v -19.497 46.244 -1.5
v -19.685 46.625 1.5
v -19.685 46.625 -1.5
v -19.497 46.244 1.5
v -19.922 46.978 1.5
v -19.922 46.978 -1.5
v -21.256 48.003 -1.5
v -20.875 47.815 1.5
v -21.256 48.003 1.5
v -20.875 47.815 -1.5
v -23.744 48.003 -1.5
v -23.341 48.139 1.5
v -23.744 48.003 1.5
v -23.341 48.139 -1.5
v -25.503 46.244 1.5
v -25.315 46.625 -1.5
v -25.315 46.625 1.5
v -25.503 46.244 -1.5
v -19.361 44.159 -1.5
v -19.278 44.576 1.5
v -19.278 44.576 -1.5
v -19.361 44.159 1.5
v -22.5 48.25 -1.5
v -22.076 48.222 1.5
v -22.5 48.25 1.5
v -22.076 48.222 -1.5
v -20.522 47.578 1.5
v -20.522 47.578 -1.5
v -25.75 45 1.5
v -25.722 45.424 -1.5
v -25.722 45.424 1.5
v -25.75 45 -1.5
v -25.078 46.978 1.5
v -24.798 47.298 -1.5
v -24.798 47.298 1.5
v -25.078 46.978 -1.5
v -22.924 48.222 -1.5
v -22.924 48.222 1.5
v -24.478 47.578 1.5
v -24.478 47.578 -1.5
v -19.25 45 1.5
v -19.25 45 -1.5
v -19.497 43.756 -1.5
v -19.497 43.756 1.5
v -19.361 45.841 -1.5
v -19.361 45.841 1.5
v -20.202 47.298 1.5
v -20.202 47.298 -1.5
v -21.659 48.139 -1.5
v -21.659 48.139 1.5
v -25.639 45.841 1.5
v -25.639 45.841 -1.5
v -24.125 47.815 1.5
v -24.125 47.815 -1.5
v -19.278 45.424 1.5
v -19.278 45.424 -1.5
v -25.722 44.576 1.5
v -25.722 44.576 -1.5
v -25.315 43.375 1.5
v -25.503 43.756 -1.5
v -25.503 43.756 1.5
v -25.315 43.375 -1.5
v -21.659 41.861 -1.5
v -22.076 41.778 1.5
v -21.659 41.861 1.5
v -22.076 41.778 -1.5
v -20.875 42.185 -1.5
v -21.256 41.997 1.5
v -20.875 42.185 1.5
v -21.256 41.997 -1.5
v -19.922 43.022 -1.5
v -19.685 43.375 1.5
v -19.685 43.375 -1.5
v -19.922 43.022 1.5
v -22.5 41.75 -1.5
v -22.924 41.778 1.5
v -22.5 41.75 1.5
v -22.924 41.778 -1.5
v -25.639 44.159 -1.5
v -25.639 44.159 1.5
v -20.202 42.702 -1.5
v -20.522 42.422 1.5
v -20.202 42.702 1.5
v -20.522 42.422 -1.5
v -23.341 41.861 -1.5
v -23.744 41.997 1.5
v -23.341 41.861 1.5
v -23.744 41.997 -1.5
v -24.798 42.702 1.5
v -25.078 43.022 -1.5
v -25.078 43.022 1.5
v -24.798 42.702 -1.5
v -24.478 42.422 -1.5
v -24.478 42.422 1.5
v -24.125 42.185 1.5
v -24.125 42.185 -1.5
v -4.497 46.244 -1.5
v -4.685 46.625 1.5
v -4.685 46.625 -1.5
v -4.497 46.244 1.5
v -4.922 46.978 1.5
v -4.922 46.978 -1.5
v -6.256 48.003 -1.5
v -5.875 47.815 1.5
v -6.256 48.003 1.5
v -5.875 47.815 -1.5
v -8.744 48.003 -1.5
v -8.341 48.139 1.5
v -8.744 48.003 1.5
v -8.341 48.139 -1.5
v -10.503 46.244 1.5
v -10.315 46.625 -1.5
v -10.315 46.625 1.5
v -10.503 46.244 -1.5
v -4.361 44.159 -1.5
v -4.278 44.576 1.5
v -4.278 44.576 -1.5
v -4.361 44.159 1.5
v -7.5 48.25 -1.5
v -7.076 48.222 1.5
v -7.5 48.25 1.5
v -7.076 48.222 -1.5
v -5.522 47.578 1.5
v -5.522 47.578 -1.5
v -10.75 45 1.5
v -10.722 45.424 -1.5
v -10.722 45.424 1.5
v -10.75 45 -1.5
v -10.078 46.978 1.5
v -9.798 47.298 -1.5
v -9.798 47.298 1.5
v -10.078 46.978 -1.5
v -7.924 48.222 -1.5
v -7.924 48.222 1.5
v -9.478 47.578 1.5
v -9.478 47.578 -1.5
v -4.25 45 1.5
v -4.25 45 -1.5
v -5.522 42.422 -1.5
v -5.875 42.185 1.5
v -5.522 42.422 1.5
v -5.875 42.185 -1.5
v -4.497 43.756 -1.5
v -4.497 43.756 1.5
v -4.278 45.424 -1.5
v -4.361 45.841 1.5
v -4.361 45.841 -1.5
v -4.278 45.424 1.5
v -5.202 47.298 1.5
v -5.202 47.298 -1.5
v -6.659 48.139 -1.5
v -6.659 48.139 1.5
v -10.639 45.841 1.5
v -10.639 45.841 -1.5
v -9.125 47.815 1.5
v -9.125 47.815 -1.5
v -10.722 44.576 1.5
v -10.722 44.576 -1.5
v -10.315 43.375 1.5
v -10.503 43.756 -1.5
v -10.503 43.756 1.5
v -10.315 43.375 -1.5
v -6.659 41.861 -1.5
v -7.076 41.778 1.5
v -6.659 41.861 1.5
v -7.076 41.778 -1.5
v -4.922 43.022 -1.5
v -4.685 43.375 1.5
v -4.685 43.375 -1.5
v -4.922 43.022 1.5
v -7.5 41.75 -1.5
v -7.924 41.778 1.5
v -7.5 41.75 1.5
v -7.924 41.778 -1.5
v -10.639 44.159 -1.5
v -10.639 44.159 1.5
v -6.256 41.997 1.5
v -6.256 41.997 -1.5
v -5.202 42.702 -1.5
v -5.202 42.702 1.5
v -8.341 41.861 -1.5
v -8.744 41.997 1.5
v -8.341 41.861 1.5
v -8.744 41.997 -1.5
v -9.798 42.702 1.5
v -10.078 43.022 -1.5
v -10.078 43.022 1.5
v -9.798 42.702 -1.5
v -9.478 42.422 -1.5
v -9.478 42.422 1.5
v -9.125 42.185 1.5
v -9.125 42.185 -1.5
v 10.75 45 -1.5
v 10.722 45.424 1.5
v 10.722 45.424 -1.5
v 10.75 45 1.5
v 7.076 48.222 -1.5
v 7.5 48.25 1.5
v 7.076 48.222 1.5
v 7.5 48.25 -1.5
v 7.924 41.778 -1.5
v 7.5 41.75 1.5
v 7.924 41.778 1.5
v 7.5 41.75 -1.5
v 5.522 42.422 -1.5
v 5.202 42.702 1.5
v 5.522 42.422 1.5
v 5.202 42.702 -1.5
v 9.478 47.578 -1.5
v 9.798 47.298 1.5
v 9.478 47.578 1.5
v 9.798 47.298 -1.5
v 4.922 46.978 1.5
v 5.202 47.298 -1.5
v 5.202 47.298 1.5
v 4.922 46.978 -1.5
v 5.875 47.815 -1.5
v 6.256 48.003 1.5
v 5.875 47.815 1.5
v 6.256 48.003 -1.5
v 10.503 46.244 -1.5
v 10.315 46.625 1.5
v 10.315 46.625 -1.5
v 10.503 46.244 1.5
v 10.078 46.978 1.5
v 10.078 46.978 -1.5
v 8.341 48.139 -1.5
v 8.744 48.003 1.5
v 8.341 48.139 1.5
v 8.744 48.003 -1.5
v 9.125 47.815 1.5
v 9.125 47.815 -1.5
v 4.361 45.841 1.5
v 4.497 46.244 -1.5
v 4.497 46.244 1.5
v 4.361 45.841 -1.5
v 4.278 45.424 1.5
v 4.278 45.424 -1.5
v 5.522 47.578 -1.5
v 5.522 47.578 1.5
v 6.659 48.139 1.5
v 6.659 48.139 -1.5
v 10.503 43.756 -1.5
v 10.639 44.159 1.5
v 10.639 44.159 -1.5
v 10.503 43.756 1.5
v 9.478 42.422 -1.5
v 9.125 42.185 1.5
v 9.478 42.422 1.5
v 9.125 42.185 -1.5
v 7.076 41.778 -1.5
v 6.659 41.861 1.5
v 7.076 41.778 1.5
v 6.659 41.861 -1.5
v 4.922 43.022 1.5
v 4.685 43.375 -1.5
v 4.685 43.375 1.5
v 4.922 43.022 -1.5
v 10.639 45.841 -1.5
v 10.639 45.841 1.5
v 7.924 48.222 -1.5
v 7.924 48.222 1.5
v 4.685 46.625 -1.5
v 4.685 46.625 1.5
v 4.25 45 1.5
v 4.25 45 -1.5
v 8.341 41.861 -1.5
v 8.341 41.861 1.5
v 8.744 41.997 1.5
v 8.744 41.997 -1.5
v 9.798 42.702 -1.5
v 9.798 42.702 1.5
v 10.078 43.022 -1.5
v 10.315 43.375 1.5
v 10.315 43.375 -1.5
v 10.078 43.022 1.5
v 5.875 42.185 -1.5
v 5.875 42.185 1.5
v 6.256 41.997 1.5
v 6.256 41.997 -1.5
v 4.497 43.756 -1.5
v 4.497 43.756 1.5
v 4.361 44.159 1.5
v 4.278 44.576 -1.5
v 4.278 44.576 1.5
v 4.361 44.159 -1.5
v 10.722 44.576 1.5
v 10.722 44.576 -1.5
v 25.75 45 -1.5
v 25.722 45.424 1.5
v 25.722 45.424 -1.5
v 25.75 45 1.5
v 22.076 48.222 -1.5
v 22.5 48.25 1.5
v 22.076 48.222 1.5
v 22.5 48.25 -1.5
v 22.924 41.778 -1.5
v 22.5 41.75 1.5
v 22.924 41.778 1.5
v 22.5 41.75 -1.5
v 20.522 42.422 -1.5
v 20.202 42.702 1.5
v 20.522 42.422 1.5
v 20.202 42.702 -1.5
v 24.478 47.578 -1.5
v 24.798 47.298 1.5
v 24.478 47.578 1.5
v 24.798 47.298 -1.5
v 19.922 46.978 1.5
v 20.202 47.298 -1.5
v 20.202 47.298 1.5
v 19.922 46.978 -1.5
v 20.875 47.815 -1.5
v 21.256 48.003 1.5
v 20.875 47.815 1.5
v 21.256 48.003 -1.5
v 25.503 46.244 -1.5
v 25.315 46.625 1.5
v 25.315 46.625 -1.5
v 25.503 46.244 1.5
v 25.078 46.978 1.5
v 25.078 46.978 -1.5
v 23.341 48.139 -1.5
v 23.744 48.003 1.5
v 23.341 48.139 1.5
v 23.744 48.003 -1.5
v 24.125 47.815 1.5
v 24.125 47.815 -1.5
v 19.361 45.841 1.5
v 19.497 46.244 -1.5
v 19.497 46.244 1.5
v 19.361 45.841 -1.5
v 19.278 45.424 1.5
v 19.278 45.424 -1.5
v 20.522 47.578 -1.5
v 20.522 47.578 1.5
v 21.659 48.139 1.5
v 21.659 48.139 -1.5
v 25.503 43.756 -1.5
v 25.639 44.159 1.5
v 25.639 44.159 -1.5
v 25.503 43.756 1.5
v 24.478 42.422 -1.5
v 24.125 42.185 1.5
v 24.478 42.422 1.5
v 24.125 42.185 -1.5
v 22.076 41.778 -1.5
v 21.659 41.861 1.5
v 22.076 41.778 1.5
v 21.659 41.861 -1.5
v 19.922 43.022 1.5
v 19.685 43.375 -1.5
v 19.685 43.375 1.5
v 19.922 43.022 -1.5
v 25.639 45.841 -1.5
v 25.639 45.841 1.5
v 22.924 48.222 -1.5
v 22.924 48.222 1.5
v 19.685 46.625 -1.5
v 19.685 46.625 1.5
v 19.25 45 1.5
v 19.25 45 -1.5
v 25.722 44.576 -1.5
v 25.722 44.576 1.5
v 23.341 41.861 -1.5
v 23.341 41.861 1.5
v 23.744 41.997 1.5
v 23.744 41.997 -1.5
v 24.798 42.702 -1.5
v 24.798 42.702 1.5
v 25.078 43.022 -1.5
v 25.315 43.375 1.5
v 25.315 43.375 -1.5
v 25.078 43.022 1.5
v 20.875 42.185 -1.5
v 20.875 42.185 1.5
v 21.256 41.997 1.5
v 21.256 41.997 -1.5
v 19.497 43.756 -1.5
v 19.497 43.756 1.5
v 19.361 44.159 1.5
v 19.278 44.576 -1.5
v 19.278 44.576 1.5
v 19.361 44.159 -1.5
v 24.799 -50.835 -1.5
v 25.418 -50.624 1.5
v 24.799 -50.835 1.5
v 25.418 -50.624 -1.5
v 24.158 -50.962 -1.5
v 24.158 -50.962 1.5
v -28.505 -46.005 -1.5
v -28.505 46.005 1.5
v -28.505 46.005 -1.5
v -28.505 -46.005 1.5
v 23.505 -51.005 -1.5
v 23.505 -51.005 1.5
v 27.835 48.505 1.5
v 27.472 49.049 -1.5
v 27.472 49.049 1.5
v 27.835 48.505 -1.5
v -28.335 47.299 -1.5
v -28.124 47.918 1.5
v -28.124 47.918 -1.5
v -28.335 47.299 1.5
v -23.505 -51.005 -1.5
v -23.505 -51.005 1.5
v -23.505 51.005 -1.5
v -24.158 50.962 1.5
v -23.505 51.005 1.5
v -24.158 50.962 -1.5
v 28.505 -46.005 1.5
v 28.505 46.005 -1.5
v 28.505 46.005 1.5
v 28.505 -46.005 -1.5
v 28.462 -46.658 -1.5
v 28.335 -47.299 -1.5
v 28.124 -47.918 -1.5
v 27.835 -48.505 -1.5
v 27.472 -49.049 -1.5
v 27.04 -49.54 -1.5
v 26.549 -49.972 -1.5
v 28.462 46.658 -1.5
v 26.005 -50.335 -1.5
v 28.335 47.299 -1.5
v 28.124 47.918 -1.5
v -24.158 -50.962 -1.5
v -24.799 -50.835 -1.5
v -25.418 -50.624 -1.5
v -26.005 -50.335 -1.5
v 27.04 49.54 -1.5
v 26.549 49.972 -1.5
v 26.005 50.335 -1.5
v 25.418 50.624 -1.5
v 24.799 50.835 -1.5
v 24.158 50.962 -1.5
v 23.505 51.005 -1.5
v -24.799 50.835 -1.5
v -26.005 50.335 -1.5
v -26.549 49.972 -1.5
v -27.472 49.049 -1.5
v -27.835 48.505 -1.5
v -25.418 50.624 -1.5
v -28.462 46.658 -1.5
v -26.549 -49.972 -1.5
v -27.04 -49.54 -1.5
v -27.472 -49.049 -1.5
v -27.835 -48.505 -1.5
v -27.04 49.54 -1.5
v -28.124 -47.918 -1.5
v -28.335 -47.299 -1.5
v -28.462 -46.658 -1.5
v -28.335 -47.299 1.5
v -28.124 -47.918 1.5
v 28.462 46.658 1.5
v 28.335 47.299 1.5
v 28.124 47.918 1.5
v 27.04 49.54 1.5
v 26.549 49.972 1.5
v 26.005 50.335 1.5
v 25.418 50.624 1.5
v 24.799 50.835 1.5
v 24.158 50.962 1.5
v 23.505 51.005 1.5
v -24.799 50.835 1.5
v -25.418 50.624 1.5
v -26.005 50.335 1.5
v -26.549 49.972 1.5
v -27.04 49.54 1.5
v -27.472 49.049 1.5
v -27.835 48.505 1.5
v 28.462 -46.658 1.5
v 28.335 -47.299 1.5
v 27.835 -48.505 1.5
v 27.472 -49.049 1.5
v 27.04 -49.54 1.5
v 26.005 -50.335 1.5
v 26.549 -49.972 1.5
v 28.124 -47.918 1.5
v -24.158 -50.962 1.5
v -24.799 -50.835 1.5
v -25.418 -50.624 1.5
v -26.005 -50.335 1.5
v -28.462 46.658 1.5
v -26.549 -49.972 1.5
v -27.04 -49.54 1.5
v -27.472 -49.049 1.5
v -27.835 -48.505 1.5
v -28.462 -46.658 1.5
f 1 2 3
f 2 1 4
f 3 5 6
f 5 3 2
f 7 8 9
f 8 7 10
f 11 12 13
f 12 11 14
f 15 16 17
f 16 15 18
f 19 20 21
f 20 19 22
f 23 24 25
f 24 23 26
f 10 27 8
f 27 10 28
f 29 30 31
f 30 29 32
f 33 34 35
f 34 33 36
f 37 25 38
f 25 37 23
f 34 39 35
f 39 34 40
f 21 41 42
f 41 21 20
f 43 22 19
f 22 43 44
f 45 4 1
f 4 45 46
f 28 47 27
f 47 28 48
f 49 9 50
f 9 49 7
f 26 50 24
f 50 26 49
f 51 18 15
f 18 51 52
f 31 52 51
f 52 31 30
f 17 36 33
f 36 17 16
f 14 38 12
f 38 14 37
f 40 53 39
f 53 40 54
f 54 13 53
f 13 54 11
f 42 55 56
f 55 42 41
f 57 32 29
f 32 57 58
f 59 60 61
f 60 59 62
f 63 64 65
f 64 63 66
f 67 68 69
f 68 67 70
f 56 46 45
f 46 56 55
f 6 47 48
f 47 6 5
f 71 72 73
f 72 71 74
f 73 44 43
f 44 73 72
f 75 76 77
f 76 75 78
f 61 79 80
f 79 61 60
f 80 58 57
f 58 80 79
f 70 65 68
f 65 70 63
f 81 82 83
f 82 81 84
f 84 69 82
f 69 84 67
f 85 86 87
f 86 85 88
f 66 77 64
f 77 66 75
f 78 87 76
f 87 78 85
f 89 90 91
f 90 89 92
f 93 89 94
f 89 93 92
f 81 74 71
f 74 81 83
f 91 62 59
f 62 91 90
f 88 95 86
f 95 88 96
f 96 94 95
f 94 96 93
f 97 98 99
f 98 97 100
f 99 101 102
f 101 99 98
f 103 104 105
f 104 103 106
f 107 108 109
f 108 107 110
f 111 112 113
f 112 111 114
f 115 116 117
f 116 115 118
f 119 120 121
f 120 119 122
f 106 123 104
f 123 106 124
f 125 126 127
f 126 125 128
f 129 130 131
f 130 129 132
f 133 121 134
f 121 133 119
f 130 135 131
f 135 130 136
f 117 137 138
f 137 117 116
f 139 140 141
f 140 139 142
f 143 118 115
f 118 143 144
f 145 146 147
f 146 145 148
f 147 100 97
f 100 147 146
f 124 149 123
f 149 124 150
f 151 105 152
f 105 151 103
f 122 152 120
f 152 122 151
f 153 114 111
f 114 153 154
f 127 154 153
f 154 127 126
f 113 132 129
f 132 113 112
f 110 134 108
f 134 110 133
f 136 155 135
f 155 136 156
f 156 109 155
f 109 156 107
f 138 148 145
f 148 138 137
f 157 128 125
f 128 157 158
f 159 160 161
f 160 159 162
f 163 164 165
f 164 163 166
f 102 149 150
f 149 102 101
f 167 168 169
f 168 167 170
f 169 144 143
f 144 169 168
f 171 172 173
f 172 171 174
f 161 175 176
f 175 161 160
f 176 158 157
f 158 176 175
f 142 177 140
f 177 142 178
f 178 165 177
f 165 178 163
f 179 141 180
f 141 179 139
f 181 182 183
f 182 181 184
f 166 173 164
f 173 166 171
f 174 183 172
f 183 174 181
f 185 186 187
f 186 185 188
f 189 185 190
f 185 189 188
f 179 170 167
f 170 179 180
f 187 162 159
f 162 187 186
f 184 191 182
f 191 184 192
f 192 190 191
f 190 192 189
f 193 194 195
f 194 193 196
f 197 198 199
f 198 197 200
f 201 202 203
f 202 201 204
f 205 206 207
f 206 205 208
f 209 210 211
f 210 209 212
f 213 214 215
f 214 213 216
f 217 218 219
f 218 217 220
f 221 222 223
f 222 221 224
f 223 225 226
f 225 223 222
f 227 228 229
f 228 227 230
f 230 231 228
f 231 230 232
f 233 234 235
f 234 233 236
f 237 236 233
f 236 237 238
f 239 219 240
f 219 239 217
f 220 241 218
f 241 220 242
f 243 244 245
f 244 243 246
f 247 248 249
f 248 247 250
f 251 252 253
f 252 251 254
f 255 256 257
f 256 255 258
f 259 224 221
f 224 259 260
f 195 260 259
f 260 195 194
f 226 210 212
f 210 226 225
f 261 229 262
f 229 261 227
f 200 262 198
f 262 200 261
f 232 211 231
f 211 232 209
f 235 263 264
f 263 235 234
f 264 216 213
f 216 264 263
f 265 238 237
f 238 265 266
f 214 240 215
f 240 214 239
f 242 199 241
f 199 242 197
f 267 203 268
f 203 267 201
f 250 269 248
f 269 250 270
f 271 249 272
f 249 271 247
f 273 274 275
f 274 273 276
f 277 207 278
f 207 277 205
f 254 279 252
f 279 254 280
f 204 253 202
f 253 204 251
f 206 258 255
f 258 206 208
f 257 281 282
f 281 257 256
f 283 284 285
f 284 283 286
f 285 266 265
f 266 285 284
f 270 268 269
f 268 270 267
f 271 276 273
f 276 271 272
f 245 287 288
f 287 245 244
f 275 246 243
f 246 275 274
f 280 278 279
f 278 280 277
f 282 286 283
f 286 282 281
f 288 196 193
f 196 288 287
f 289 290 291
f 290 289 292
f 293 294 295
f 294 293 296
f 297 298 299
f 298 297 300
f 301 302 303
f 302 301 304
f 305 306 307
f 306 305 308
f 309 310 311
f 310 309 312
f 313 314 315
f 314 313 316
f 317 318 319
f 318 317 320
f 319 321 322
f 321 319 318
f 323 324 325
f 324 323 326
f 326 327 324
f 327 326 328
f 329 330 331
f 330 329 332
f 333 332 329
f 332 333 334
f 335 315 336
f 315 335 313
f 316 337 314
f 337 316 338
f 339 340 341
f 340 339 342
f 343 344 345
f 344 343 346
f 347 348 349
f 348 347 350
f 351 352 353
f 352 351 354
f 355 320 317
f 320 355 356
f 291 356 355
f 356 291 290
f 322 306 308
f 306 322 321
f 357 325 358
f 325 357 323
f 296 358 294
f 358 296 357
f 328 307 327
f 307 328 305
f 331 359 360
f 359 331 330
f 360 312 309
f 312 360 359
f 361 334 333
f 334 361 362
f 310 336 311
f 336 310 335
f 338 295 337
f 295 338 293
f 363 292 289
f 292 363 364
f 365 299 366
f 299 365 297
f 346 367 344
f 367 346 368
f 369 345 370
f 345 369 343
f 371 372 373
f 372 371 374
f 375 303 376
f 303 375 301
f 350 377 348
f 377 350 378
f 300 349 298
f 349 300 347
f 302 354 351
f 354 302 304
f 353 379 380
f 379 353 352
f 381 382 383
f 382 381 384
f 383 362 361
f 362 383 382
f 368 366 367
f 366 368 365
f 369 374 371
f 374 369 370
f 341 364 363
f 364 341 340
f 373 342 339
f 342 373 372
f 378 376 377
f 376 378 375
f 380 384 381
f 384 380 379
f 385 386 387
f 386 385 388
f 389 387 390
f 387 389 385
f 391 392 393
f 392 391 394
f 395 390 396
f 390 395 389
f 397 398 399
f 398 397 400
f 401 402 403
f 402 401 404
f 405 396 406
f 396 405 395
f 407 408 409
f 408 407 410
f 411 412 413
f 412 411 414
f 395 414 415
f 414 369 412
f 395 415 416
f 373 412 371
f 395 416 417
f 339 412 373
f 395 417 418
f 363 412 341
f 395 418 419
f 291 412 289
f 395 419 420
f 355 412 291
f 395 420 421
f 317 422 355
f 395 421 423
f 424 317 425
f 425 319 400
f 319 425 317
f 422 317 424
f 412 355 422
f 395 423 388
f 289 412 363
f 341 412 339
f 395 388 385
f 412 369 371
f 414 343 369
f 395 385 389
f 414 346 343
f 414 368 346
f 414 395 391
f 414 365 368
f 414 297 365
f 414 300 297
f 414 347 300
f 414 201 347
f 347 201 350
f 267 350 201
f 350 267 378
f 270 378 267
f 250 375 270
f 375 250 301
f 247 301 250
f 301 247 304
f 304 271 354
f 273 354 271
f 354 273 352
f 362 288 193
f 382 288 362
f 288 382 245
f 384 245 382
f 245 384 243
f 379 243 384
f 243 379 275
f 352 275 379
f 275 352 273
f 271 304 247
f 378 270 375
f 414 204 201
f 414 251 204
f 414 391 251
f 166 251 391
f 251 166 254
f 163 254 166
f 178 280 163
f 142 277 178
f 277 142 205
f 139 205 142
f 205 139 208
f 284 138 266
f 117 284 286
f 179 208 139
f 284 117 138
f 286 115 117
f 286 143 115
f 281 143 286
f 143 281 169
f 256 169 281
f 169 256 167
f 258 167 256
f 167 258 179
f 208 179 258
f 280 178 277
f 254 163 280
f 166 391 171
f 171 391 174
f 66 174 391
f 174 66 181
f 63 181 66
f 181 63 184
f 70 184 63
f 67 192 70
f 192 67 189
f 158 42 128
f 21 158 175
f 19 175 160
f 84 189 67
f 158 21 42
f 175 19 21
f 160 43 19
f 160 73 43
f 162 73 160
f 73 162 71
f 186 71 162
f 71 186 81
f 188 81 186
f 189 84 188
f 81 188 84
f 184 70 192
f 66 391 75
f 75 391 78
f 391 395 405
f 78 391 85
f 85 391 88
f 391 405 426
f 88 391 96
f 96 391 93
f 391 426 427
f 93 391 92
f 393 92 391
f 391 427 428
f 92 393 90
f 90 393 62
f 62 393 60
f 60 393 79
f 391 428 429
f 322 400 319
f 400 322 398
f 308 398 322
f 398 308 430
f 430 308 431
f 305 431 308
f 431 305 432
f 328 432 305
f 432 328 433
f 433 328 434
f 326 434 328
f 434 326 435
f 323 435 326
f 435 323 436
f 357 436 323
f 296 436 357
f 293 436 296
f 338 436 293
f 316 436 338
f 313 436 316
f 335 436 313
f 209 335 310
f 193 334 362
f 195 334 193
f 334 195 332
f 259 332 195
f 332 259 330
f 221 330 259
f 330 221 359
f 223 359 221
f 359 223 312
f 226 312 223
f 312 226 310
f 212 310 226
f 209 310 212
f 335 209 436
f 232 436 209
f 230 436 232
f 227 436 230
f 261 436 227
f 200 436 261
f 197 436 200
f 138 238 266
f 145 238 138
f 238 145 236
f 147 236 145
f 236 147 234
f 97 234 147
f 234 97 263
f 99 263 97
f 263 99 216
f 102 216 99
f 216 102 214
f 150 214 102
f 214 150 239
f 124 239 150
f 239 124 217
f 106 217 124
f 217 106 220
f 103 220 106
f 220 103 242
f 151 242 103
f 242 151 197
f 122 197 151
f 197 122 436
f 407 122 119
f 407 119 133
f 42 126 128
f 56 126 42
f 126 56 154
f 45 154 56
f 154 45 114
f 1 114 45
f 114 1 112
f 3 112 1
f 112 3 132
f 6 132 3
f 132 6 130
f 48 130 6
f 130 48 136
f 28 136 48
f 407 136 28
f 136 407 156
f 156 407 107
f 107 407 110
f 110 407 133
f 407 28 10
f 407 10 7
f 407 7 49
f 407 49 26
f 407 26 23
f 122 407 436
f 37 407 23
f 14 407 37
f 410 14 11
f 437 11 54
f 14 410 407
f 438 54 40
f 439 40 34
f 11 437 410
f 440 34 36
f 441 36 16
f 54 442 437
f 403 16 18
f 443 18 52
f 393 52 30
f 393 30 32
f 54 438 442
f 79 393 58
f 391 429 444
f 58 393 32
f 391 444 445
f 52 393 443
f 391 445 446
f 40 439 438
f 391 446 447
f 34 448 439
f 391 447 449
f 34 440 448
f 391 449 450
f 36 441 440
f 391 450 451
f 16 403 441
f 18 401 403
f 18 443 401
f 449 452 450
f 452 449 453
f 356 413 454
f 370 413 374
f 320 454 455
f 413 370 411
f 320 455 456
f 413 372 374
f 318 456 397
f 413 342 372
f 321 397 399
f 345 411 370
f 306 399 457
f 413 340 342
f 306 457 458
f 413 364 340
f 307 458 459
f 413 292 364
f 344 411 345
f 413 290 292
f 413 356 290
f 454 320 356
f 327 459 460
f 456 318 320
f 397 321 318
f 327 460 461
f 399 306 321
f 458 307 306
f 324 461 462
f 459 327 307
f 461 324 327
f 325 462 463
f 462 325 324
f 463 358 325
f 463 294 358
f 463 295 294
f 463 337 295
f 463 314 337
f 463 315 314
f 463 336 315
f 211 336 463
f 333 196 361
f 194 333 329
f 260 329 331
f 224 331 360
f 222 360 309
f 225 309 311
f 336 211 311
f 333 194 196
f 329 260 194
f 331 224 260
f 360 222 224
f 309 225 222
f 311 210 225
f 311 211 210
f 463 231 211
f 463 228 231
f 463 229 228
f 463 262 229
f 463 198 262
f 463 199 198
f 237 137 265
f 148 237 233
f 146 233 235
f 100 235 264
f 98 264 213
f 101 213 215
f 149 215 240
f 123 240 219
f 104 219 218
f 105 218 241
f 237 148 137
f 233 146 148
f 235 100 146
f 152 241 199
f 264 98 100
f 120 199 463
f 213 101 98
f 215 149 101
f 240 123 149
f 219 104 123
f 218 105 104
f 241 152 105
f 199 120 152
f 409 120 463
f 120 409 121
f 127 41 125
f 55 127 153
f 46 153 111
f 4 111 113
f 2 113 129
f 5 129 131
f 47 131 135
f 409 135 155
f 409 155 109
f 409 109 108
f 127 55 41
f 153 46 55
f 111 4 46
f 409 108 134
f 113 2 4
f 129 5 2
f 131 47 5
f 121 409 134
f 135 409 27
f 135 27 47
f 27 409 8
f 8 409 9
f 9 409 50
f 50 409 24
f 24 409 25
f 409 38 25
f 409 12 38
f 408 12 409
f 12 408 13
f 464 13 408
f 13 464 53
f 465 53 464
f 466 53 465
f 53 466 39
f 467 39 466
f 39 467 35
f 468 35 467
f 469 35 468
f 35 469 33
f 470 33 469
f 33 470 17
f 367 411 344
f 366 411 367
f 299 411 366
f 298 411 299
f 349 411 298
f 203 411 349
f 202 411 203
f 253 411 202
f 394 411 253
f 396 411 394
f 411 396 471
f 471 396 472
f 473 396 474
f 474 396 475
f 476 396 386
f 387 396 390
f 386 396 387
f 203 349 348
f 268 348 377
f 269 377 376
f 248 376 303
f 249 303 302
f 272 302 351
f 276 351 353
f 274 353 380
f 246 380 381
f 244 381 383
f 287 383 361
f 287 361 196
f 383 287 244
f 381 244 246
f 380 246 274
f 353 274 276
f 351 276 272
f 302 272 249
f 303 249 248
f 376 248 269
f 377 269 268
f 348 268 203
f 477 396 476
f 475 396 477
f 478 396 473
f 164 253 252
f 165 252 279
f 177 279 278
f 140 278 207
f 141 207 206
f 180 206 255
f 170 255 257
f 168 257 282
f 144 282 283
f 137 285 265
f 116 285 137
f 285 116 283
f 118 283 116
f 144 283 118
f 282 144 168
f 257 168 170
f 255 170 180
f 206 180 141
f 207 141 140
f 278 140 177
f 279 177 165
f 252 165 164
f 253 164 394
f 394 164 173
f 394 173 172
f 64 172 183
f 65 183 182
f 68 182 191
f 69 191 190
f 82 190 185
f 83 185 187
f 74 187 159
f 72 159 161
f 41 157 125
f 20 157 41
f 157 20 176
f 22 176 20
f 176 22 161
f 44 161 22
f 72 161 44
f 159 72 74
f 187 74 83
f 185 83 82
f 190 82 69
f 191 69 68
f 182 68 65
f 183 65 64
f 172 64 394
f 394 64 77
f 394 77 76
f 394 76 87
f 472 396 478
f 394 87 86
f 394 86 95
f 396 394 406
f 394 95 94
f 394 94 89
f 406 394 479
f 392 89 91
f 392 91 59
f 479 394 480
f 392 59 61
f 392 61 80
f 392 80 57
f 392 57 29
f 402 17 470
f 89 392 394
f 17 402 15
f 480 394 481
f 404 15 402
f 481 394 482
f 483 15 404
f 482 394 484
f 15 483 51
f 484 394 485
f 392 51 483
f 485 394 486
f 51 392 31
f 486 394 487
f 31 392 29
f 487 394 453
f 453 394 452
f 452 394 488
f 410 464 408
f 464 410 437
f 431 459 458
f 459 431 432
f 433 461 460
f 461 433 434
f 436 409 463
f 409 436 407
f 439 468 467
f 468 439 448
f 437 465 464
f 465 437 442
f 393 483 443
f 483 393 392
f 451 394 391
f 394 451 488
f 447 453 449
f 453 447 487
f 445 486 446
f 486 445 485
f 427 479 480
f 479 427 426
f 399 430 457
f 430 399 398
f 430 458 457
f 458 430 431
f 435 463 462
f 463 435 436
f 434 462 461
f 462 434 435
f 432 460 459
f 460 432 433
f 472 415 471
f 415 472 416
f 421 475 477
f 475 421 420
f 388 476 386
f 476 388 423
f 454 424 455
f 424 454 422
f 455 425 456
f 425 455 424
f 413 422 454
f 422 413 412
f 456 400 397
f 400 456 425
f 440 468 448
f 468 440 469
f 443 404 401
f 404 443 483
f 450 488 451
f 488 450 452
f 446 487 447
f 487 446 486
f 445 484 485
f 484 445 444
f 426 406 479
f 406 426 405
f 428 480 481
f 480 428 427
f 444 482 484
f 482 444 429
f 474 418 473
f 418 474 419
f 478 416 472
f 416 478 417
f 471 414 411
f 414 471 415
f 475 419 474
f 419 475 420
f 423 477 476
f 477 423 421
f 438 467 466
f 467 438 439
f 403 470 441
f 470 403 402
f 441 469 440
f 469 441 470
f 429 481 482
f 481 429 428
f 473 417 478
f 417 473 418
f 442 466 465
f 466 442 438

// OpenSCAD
$fn = 48;


difference() {
	union() {
		color(alpha = 1.0000000000, c = "Gold") {
			translate(v = [0, 0, 1.5000000000]) {
				rotate(a = [0, 0, 0]) {
					translate(v = [0, 0, -3]) {
						linear_extrude(height = 3) {
							offset(r = 5) {
								square(center = true, size = [47.0100000000, 92.0100000000]);
							}
						}
					}
				}
			}
		}
	}
	union() {
		color(alpha = 1.0000000000, c = "Gold") {
			translate(v = [-22.5000000000, 45.0000000000, 0]) {
				rotate(a = [0, 0, 0]) {
					translate(v = [0, 0, -250]) {
						cylinder(h = 500, r = 3.2500000000);
					}
				}
			}
		}
		color(alpha = 1.0000000000, c = "Gold") {
			translate(v = [-7.5000000000, 45.0000000000, 0]) {
				rotate(a = [0, 0, 0]) {
					translate(v = [0, 0, -250]) {
						cylinder(h = 500, r = 3.2500000000);
					}
				}
			}
		}
		color(alpha = 1.0000000000, c = "Gold") {
			translate(v = [7.5000000000, 45.0000000000, 0]) {
				rotate(a = [0, 0, 0]) {
					translate(v = [0, 0, -250]) {
						cylinder(h = 500, r = 3.2500000000);
					}
				}
			}
		}
		color(alpha = 1.0000000000, c = "Gold") {
			translate(v = [22.5000000000, 45.0000000000, 0]) {
				rotate(a = [0, 0, 0]) {
					translate(v = [0, 0, -250]) {
						cylinder(h = 500, r = 3.2500000000);
					}
				}
			}
		}
	}
}
